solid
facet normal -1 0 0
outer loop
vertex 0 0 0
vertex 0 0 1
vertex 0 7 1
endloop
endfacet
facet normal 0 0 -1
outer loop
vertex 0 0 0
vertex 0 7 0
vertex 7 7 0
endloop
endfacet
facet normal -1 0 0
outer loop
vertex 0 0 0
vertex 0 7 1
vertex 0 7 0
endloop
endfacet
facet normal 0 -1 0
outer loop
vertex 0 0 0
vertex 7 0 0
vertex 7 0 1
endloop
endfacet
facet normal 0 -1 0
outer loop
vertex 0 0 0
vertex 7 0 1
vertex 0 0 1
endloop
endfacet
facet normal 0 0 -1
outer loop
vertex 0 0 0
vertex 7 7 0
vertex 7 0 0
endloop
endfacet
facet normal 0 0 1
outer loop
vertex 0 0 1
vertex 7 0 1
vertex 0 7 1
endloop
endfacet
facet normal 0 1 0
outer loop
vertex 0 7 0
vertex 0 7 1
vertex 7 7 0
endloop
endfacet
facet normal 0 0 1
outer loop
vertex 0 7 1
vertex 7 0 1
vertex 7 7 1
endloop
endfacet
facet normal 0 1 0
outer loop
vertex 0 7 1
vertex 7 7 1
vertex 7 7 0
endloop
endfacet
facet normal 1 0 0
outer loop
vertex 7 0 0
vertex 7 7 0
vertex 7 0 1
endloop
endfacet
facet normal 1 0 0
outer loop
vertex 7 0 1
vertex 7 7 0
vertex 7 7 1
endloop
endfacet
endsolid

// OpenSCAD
/* Warning, this is a very basic generator with a lot of approximation 
input data : [VQFN, 2GX, 7x7x1.0mm, 56, , B, C04-00234B]
generated by com.zoubworld.electronics.cad.model3d.Basic
Date : Sun Feb 15 10:50:48 CET 2026
*/

//body
color("black")
translate([0,0,0])
cube([7.0,7.0,1.0], center=false);
